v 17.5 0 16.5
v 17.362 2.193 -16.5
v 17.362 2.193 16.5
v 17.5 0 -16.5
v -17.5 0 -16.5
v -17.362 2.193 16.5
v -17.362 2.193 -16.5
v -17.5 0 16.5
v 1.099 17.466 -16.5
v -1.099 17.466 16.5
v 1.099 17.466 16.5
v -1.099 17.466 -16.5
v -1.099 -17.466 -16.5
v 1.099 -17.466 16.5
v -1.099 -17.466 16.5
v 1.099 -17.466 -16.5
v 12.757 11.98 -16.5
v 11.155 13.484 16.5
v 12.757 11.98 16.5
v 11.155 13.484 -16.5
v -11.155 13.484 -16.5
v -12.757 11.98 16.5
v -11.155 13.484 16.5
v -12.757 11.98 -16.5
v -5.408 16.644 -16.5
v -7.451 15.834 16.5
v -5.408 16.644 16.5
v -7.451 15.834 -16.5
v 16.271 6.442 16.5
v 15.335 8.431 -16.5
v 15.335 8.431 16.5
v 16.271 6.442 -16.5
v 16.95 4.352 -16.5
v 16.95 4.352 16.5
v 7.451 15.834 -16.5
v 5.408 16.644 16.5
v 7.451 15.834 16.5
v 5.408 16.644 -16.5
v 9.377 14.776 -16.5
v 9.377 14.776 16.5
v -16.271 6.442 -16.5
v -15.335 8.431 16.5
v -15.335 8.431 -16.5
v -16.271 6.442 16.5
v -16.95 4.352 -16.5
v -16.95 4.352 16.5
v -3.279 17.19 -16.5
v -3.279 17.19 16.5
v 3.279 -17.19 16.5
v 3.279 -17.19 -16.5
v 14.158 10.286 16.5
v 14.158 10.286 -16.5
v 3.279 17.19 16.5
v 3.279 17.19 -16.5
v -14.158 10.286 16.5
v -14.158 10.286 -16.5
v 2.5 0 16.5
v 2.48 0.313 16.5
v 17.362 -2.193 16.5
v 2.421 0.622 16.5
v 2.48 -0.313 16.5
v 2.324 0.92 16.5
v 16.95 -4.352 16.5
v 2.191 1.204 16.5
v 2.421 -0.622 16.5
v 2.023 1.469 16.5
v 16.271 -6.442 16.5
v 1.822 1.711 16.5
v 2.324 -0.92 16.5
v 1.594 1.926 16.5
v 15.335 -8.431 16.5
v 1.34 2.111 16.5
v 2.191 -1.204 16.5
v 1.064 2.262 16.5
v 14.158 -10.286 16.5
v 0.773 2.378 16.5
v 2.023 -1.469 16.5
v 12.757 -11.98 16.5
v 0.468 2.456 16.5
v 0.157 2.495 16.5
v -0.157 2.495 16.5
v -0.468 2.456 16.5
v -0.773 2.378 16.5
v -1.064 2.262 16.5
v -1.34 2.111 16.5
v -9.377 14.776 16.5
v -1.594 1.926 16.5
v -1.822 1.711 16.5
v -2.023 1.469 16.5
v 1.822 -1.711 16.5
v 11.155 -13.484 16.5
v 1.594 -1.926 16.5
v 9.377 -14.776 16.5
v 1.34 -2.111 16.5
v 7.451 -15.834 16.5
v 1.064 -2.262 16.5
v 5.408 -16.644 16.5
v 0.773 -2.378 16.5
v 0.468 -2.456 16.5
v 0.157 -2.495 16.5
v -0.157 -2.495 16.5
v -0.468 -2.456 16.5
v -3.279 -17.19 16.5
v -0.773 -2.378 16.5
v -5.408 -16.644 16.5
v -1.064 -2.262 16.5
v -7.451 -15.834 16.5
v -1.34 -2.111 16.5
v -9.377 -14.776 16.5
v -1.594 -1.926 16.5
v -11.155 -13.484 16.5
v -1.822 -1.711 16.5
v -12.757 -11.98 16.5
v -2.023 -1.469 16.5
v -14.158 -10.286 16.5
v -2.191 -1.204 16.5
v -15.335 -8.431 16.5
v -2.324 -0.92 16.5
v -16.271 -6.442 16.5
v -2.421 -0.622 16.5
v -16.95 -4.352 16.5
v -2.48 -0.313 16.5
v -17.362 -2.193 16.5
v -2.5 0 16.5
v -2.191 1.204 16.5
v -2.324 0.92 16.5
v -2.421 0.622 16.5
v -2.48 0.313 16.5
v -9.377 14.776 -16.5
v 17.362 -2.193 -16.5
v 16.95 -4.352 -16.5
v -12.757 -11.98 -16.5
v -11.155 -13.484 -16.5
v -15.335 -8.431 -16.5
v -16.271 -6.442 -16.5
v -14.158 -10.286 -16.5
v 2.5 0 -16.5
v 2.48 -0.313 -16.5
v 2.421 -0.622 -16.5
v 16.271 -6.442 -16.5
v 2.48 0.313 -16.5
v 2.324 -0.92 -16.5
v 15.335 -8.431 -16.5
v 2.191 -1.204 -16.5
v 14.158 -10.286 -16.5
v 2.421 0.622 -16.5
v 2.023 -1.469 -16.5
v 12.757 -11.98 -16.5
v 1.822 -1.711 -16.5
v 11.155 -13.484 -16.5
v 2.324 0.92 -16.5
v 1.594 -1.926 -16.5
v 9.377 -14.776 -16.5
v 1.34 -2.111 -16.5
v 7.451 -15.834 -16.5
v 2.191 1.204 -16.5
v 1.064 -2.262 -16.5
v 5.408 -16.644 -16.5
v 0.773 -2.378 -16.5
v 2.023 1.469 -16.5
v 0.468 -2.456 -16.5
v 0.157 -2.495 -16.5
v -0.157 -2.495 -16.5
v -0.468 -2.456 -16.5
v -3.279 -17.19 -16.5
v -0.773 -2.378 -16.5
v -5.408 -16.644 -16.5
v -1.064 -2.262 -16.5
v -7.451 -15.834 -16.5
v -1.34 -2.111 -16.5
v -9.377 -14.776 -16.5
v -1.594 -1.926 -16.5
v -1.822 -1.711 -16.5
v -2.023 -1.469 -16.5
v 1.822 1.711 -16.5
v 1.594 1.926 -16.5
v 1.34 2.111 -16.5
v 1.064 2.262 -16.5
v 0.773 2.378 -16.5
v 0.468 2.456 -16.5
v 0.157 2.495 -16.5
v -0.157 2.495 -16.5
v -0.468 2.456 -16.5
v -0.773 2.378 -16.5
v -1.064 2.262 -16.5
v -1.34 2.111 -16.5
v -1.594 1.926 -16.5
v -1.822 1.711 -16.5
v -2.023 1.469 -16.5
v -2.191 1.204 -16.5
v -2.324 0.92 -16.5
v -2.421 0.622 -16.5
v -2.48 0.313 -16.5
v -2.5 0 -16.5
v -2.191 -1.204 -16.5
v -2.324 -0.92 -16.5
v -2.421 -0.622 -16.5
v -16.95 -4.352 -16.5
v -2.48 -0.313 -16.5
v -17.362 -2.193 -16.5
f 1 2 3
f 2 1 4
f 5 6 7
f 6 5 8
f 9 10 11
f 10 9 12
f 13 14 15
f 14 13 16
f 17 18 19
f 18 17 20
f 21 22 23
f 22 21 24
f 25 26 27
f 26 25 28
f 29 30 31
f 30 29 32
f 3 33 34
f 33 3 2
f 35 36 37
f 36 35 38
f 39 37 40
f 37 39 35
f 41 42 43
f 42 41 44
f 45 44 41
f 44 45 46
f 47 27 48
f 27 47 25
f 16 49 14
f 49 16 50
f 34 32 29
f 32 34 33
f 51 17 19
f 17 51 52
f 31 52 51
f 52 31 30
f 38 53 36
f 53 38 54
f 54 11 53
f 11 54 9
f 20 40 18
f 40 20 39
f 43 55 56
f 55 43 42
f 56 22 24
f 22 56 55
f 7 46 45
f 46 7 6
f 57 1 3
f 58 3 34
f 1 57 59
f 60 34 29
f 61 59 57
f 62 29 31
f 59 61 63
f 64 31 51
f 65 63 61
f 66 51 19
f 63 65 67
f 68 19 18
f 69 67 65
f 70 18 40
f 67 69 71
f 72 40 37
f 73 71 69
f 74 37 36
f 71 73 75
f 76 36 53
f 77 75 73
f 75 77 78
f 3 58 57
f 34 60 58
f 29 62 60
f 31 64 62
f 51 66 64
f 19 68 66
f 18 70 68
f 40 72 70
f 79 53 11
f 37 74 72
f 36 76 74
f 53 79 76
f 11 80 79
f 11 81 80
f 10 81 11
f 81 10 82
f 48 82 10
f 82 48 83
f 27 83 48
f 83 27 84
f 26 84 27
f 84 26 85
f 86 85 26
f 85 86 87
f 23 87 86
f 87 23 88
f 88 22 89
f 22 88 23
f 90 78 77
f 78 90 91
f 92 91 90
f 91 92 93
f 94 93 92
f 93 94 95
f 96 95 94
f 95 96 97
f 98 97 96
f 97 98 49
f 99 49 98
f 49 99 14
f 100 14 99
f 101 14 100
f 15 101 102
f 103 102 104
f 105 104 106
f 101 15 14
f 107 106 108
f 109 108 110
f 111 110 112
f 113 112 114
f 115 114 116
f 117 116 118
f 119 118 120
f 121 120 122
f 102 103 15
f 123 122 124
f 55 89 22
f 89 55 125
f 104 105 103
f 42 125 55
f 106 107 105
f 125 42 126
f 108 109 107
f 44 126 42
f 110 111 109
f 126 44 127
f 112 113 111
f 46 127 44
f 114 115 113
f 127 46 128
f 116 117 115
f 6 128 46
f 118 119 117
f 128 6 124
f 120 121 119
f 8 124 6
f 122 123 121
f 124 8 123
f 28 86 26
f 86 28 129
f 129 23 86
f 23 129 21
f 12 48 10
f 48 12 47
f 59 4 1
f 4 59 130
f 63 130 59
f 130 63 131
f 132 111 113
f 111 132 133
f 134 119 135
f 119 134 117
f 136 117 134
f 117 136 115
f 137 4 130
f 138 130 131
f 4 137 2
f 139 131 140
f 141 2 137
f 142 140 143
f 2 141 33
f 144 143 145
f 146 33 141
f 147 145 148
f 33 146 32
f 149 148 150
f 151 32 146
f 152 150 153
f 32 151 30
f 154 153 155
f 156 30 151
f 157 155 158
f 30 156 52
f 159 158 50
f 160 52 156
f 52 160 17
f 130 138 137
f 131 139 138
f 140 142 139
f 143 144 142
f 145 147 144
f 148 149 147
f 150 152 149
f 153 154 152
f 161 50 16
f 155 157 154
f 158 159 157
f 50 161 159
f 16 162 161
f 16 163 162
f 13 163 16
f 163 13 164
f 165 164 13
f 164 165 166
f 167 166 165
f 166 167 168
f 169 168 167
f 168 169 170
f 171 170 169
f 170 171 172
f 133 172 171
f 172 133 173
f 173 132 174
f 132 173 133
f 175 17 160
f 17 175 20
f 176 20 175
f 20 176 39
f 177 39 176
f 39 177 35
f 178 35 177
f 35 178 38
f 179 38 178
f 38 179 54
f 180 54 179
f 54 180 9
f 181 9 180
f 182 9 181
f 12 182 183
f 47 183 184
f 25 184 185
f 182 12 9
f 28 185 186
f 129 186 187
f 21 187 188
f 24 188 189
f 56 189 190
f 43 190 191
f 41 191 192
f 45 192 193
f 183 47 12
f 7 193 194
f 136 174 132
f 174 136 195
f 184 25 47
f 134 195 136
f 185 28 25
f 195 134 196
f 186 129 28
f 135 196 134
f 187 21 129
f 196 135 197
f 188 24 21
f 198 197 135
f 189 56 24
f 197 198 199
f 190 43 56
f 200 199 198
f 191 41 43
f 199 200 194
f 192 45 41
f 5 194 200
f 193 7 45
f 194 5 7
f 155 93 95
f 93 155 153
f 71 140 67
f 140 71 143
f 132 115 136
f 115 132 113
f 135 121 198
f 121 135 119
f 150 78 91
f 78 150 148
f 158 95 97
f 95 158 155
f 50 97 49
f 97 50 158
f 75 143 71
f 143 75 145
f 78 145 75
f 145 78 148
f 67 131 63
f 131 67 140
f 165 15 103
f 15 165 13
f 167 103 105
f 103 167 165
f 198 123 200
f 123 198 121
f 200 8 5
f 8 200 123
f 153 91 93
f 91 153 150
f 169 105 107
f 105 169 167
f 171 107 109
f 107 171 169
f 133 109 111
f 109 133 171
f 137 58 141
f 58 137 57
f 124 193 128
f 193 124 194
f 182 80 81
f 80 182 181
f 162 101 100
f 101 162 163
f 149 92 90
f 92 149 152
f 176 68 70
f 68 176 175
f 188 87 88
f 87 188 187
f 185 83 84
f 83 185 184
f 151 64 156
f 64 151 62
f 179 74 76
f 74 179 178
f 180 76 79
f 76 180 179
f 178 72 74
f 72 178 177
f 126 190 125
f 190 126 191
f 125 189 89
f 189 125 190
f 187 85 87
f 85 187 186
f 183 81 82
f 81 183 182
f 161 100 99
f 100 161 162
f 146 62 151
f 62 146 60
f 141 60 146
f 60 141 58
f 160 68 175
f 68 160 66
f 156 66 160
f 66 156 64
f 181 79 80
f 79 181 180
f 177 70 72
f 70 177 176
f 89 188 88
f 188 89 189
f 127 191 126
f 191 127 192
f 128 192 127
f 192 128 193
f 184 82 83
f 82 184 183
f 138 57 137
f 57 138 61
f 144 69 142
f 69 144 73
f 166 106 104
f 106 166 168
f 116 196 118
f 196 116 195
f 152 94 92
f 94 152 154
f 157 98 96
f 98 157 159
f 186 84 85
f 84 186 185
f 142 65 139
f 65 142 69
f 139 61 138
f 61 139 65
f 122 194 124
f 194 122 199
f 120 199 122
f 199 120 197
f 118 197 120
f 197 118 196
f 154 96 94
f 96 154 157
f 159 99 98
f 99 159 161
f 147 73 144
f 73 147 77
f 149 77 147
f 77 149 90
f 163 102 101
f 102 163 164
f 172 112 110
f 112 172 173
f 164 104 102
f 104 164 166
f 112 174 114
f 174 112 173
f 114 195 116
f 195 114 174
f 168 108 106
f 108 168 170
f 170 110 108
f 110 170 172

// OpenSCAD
$fn = 50;


difference() {
	union() {
		translate(v = [0, 0, -16.5000000000]) {
			cylinder(h = 33, r = 17.5000000000);
		}
	}
	union() {
		translate(v = [0, 0, -100.0000000000]) {
			cylinder(h = 200, r = 2.5000000000);
		}
	}
}
